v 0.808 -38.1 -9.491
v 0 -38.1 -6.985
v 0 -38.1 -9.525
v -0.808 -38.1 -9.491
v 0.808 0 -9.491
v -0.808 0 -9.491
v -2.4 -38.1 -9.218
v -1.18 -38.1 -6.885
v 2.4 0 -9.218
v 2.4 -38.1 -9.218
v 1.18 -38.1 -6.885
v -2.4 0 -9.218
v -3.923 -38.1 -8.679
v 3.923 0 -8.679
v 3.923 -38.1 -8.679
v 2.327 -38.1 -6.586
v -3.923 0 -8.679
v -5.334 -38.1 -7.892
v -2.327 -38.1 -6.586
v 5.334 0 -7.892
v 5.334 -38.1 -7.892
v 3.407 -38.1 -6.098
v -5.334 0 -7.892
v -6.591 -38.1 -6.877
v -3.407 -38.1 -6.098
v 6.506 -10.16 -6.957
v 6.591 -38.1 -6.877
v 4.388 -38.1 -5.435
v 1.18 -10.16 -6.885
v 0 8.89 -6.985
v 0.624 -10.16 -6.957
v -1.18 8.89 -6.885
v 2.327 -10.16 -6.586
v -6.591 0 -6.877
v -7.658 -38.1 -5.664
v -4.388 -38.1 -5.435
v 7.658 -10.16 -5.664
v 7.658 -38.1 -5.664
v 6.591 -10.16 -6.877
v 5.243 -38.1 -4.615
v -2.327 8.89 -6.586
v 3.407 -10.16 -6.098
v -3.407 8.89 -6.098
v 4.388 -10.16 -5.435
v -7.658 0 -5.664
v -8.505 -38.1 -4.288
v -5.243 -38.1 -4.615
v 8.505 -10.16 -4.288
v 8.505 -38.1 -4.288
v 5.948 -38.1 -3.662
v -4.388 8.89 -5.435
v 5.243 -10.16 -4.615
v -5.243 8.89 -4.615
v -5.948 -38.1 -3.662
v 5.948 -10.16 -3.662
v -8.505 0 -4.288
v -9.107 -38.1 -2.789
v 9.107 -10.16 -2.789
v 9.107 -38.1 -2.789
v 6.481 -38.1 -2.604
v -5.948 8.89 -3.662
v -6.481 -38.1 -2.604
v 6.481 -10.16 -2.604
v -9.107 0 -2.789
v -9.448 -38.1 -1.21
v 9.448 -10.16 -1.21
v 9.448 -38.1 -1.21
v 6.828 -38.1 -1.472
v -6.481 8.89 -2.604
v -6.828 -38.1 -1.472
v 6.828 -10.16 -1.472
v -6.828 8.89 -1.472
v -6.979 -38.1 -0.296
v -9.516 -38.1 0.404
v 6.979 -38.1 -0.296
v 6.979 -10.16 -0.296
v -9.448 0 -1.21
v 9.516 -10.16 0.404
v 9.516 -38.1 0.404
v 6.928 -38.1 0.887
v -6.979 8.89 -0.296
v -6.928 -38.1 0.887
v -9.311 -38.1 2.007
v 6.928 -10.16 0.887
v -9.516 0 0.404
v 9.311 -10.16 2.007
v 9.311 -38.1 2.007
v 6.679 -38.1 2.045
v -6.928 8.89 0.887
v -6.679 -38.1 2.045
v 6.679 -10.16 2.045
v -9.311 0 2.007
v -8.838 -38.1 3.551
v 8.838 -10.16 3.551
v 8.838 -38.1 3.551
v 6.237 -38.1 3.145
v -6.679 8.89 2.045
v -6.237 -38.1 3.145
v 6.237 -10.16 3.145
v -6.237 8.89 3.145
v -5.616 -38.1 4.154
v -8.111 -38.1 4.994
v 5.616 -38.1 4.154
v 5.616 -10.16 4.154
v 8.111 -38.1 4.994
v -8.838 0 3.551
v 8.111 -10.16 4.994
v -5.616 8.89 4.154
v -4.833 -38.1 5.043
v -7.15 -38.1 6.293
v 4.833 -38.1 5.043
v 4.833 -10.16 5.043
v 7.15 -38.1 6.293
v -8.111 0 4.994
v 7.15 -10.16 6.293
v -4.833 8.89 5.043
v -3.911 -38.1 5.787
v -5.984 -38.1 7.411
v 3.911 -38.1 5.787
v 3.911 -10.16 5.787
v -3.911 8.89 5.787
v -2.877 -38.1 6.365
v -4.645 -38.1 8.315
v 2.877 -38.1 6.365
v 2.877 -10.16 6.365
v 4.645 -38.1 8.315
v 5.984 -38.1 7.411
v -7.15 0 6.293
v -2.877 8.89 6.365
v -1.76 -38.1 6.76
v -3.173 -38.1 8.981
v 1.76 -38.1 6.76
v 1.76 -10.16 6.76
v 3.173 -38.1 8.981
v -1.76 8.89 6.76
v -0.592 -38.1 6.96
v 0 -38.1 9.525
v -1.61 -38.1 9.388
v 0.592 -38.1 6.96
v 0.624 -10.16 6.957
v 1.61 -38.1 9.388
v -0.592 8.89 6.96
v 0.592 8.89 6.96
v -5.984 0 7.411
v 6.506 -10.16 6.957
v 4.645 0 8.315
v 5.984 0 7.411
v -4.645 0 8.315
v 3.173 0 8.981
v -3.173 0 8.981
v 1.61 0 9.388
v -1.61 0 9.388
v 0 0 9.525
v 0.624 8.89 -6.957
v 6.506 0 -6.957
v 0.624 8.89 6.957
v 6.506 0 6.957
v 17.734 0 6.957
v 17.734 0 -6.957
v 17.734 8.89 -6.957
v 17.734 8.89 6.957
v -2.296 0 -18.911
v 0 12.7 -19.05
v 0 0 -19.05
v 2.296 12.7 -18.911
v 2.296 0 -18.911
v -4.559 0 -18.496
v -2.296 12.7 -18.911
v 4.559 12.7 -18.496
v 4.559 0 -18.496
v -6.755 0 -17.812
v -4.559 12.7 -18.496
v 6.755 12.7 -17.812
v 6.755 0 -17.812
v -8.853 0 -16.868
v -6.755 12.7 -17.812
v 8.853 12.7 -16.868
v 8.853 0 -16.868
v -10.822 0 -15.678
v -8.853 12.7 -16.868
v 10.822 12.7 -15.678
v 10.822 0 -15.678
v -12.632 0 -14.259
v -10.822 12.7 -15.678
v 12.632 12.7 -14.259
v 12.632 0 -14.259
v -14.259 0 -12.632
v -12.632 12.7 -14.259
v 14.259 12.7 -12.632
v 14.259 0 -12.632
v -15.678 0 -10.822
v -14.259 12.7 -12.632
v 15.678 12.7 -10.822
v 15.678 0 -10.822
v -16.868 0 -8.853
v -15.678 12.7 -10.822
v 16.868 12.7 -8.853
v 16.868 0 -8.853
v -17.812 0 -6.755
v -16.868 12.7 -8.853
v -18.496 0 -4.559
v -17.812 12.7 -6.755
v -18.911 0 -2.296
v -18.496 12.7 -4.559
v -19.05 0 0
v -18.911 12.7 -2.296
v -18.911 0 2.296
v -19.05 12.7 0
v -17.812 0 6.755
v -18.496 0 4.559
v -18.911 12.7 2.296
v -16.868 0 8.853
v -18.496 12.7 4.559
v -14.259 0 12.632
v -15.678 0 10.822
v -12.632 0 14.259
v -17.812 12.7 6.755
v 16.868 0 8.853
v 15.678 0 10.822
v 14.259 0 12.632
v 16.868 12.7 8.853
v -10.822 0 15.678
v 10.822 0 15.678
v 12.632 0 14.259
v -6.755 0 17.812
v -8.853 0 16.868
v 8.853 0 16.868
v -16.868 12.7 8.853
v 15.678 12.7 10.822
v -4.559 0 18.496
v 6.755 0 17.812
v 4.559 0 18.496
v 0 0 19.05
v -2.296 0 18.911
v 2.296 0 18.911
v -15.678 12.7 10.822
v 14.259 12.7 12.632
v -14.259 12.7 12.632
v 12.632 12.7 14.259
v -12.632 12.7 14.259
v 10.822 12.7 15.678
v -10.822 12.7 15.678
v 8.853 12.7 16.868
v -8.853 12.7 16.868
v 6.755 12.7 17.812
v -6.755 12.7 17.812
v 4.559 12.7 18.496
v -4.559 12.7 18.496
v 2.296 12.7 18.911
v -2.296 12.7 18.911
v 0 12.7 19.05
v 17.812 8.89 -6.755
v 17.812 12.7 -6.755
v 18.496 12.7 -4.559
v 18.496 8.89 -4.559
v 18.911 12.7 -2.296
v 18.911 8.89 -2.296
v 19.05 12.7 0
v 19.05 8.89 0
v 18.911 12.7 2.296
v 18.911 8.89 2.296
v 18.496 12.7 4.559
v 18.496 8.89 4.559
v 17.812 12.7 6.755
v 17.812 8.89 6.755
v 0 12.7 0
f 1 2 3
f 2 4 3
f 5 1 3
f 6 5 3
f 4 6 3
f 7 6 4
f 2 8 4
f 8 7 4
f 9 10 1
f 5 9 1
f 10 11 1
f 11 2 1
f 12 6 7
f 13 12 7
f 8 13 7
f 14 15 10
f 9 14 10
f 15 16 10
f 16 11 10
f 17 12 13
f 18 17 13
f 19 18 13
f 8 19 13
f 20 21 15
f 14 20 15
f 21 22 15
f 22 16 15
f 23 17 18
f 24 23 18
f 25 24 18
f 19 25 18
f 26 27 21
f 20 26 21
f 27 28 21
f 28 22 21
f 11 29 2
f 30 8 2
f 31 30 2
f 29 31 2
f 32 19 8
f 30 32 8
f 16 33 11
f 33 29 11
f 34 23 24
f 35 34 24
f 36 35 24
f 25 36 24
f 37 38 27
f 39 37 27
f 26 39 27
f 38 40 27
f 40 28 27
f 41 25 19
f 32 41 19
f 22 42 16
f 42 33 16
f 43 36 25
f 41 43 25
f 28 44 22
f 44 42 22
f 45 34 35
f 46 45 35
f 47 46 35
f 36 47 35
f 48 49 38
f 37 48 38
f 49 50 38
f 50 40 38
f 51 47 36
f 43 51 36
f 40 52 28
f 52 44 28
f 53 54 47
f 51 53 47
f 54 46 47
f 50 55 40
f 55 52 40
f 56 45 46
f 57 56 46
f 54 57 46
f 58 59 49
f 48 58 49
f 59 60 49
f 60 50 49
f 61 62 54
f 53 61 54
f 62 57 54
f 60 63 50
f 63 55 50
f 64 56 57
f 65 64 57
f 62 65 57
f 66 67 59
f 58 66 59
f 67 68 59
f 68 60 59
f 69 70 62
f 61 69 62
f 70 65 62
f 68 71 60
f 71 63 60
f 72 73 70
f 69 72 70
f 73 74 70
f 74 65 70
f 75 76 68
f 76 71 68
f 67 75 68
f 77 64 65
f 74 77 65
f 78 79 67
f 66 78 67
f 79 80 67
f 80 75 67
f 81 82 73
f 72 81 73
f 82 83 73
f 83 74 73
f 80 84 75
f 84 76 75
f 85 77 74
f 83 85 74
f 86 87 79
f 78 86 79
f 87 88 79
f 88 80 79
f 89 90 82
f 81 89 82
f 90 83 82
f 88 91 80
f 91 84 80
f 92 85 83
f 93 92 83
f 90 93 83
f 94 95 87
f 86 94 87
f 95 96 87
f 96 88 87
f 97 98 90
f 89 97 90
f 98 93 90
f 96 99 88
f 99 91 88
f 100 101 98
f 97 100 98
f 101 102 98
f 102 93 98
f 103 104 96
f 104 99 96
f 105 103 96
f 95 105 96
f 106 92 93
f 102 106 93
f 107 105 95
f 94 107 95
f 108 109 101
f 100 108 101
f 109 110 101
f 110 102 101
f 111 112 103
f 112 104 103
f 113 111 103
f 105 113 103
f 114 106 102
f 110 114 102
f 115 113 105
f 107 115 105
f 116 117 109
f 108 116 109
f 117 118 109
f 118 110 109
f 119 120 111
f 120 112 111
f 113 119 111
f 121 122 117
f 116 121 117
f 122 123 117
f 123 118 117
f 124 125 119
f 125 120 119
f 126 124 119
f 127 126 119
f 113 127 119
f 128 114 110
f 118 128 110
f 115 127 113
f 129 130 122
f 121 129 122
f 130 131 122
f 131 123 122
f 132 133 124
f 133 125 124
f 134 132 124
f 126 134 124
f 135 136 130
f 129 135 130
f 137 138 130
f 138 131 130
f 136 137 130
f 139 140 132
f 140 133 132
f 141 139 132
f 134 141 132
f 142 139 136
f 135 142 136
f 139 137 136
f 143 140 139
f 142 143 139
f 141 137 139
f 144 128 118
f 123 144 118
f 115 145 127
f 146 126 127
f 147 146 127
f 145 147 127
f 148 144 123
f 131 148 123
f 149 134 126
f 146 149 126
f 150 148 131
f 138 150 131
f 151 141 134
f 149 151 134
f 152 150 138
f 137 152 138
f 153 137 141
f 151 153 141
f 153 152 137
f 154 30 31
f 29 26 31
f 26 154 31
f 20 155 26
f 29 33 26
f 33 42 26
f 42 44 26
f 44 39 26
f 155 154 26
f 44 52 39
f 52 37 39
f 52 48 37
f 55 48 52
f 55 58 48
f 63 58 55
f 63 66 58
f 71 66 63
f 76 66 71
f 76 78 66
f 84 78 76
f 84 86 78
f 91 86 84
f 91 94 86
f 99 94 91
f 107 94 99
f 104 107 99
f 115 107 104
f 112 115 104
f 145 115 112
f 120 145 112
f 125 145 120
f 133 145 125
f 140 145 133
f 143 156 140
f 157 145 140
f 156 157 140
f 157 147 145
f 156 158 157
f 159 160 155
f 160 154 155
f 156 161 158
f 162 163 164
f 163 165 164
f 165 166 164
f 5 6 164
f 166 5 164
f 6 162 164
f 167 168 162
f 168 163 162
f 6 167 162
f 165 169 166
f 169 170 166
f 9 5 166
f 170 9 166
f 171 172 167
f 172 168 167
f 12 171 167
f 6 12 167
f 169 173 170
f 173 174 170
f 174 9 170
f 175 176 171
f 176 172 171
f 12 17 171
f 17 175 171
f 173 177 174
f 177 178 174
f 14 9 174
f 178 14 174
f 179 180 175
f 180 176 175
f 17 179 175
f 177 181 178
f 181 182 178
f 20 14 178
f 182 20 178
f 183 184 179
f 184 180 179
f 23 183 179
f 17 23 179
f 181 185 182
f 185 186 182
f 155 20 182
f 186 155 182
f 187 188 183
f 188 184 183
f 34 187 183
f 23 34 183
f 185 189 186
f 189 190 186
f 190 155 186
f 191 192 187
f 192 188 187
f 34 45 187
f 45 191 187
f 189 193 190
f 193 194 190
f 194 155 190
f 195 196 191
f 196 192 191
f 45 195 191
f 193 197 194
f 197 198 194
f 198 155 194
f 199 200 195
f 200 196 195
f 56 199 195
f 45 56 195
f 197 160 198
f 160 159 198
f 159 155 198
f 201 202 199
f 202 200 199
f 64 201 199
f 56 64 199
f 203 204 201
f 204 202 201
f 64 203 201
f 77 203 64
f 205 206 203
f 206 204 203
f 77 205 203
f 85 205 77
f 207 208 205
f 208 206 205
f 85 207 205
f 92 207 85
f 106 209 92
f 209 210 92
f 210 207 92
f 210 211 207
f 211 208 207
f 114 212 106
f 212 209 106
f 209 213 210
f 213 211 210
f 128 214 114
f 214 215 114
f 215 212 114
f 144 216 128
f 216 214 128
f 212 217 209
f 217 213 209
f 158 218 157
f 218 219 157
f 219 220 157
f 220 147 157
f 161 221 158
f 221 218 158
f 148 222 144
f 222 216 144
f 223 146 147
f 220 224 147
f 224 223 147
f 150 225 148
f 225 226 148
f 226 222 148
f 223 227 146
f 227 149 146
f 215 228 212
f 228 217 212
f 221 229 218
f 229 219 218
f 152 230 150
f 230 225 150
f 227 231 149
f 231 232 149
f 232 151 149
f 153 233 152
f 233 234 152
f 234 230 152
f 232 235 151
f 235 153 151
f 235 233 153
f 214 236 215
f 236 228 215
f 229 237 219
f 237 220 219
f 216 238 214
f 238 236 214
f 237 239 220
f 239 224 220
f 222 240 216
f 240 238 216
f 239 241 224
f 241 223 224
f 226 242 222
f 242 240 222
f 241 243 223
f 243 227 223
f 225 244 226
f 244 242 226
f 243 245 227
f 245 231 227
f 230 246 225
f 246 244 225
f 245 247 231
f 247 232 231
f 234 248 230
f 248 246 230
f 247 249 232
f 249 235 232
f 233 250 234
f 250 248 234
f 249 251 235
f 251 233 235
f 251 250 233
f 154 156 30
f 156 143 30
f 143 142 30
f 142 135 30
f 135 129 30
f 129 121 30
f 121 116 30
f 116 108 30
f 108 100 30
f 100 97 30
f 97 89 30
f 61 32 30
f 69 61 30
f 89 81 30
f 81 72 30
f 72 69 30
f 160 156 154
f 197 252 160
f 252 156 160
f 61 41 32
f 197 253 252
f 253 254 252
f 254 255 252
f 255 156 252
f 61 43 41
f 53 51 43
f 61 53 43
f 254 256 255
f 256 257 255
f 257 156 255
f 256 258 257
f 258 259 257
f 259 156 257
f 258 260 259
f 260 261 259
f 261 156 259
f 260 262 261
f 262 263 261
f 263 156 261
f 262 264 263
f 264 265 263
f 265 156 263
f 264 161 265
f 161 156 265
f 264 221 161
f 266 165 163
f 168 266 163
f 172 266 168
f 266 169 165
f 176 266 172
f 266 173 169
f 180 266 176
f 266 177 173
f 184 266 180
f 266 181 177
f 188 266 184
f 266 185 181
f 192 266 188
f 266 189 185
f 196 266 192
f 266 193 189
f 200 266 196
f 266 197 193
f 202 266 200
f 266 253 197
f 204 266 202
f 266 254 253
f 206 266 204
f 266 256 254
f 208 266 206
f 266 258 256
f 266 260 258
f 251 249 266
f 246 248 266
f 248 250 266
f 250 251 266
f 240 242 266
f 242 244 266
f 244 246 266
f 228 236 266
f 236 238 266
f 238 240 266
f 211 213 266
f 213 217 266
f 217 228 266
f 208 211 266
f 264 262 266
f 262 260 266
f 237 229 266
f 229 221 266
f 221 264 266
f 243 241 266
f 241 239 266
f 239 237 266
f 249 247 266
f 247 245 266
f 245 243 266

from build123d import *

# Parameters (mm, degrees)
SKETCH1_R           = 19.05
BOSS_EXTRUDE1_DEPTH = 12.7
SKETCH2_R           = 9.525
BOSS_EXTRUDE2_DEPTH = 38.1
SKETCH3_R           = 6.985
CUT_EXTRUDE1_DEPTH  = 46.99
CUT_EXTRUDE2_DEPTH  = 19.05


with BuildPart() as part:
    # Sketch1 → Boss-Extrude1 (new body)
    with BuildSketch(Plane(origin=(0, 0, 0), x_dir=(1, 0, 0), z_dir=(0, 1, 0))):
        Circle(SKETCH1_R)
    extrude(amount=BOSS_EXTRUDE1_DEPTH)

    # Sketch2 → Boss-Extrude2 (add)
    with BuildSketch(Plane.XZ):
        Circle(SKETCH2_R)
    extrude(amount=BOSS_EXTRUDE2_DEPTH)

    # Sketch3 → Cut-Extrude1 (cut)
    with BuildSketch(Plane.XZ.offset(38.1)):
        Circle(SKETCH3_R)
    extrude(amount=-CUT_EXTRUDE1_DEPTH, mode=Mode.SUBTRACT)

    # Sketch5 → Cut-Extrude2 (cut)
    with BuildSketch(Plane.XZ.offset(-8.89)):
        with BuildLine():
            Line((0, 6.957071705), (19.05, 6.957071705))
            ThreePointArc((19.05, 6.957071705), (26.007071705, 0), (19.05, -6.957071705))
            Line((19.05, -6.957071705), (0, -6.957071705))
            ThreePointArc((0, -6.957071705), (-6.957071705, 0), (0, 6.957071705))
        make_face()
    extrude(amount=CUT_EXTRUDE2_DEPTH, mode=Mode.SUBTRACT)


solid = part.part
